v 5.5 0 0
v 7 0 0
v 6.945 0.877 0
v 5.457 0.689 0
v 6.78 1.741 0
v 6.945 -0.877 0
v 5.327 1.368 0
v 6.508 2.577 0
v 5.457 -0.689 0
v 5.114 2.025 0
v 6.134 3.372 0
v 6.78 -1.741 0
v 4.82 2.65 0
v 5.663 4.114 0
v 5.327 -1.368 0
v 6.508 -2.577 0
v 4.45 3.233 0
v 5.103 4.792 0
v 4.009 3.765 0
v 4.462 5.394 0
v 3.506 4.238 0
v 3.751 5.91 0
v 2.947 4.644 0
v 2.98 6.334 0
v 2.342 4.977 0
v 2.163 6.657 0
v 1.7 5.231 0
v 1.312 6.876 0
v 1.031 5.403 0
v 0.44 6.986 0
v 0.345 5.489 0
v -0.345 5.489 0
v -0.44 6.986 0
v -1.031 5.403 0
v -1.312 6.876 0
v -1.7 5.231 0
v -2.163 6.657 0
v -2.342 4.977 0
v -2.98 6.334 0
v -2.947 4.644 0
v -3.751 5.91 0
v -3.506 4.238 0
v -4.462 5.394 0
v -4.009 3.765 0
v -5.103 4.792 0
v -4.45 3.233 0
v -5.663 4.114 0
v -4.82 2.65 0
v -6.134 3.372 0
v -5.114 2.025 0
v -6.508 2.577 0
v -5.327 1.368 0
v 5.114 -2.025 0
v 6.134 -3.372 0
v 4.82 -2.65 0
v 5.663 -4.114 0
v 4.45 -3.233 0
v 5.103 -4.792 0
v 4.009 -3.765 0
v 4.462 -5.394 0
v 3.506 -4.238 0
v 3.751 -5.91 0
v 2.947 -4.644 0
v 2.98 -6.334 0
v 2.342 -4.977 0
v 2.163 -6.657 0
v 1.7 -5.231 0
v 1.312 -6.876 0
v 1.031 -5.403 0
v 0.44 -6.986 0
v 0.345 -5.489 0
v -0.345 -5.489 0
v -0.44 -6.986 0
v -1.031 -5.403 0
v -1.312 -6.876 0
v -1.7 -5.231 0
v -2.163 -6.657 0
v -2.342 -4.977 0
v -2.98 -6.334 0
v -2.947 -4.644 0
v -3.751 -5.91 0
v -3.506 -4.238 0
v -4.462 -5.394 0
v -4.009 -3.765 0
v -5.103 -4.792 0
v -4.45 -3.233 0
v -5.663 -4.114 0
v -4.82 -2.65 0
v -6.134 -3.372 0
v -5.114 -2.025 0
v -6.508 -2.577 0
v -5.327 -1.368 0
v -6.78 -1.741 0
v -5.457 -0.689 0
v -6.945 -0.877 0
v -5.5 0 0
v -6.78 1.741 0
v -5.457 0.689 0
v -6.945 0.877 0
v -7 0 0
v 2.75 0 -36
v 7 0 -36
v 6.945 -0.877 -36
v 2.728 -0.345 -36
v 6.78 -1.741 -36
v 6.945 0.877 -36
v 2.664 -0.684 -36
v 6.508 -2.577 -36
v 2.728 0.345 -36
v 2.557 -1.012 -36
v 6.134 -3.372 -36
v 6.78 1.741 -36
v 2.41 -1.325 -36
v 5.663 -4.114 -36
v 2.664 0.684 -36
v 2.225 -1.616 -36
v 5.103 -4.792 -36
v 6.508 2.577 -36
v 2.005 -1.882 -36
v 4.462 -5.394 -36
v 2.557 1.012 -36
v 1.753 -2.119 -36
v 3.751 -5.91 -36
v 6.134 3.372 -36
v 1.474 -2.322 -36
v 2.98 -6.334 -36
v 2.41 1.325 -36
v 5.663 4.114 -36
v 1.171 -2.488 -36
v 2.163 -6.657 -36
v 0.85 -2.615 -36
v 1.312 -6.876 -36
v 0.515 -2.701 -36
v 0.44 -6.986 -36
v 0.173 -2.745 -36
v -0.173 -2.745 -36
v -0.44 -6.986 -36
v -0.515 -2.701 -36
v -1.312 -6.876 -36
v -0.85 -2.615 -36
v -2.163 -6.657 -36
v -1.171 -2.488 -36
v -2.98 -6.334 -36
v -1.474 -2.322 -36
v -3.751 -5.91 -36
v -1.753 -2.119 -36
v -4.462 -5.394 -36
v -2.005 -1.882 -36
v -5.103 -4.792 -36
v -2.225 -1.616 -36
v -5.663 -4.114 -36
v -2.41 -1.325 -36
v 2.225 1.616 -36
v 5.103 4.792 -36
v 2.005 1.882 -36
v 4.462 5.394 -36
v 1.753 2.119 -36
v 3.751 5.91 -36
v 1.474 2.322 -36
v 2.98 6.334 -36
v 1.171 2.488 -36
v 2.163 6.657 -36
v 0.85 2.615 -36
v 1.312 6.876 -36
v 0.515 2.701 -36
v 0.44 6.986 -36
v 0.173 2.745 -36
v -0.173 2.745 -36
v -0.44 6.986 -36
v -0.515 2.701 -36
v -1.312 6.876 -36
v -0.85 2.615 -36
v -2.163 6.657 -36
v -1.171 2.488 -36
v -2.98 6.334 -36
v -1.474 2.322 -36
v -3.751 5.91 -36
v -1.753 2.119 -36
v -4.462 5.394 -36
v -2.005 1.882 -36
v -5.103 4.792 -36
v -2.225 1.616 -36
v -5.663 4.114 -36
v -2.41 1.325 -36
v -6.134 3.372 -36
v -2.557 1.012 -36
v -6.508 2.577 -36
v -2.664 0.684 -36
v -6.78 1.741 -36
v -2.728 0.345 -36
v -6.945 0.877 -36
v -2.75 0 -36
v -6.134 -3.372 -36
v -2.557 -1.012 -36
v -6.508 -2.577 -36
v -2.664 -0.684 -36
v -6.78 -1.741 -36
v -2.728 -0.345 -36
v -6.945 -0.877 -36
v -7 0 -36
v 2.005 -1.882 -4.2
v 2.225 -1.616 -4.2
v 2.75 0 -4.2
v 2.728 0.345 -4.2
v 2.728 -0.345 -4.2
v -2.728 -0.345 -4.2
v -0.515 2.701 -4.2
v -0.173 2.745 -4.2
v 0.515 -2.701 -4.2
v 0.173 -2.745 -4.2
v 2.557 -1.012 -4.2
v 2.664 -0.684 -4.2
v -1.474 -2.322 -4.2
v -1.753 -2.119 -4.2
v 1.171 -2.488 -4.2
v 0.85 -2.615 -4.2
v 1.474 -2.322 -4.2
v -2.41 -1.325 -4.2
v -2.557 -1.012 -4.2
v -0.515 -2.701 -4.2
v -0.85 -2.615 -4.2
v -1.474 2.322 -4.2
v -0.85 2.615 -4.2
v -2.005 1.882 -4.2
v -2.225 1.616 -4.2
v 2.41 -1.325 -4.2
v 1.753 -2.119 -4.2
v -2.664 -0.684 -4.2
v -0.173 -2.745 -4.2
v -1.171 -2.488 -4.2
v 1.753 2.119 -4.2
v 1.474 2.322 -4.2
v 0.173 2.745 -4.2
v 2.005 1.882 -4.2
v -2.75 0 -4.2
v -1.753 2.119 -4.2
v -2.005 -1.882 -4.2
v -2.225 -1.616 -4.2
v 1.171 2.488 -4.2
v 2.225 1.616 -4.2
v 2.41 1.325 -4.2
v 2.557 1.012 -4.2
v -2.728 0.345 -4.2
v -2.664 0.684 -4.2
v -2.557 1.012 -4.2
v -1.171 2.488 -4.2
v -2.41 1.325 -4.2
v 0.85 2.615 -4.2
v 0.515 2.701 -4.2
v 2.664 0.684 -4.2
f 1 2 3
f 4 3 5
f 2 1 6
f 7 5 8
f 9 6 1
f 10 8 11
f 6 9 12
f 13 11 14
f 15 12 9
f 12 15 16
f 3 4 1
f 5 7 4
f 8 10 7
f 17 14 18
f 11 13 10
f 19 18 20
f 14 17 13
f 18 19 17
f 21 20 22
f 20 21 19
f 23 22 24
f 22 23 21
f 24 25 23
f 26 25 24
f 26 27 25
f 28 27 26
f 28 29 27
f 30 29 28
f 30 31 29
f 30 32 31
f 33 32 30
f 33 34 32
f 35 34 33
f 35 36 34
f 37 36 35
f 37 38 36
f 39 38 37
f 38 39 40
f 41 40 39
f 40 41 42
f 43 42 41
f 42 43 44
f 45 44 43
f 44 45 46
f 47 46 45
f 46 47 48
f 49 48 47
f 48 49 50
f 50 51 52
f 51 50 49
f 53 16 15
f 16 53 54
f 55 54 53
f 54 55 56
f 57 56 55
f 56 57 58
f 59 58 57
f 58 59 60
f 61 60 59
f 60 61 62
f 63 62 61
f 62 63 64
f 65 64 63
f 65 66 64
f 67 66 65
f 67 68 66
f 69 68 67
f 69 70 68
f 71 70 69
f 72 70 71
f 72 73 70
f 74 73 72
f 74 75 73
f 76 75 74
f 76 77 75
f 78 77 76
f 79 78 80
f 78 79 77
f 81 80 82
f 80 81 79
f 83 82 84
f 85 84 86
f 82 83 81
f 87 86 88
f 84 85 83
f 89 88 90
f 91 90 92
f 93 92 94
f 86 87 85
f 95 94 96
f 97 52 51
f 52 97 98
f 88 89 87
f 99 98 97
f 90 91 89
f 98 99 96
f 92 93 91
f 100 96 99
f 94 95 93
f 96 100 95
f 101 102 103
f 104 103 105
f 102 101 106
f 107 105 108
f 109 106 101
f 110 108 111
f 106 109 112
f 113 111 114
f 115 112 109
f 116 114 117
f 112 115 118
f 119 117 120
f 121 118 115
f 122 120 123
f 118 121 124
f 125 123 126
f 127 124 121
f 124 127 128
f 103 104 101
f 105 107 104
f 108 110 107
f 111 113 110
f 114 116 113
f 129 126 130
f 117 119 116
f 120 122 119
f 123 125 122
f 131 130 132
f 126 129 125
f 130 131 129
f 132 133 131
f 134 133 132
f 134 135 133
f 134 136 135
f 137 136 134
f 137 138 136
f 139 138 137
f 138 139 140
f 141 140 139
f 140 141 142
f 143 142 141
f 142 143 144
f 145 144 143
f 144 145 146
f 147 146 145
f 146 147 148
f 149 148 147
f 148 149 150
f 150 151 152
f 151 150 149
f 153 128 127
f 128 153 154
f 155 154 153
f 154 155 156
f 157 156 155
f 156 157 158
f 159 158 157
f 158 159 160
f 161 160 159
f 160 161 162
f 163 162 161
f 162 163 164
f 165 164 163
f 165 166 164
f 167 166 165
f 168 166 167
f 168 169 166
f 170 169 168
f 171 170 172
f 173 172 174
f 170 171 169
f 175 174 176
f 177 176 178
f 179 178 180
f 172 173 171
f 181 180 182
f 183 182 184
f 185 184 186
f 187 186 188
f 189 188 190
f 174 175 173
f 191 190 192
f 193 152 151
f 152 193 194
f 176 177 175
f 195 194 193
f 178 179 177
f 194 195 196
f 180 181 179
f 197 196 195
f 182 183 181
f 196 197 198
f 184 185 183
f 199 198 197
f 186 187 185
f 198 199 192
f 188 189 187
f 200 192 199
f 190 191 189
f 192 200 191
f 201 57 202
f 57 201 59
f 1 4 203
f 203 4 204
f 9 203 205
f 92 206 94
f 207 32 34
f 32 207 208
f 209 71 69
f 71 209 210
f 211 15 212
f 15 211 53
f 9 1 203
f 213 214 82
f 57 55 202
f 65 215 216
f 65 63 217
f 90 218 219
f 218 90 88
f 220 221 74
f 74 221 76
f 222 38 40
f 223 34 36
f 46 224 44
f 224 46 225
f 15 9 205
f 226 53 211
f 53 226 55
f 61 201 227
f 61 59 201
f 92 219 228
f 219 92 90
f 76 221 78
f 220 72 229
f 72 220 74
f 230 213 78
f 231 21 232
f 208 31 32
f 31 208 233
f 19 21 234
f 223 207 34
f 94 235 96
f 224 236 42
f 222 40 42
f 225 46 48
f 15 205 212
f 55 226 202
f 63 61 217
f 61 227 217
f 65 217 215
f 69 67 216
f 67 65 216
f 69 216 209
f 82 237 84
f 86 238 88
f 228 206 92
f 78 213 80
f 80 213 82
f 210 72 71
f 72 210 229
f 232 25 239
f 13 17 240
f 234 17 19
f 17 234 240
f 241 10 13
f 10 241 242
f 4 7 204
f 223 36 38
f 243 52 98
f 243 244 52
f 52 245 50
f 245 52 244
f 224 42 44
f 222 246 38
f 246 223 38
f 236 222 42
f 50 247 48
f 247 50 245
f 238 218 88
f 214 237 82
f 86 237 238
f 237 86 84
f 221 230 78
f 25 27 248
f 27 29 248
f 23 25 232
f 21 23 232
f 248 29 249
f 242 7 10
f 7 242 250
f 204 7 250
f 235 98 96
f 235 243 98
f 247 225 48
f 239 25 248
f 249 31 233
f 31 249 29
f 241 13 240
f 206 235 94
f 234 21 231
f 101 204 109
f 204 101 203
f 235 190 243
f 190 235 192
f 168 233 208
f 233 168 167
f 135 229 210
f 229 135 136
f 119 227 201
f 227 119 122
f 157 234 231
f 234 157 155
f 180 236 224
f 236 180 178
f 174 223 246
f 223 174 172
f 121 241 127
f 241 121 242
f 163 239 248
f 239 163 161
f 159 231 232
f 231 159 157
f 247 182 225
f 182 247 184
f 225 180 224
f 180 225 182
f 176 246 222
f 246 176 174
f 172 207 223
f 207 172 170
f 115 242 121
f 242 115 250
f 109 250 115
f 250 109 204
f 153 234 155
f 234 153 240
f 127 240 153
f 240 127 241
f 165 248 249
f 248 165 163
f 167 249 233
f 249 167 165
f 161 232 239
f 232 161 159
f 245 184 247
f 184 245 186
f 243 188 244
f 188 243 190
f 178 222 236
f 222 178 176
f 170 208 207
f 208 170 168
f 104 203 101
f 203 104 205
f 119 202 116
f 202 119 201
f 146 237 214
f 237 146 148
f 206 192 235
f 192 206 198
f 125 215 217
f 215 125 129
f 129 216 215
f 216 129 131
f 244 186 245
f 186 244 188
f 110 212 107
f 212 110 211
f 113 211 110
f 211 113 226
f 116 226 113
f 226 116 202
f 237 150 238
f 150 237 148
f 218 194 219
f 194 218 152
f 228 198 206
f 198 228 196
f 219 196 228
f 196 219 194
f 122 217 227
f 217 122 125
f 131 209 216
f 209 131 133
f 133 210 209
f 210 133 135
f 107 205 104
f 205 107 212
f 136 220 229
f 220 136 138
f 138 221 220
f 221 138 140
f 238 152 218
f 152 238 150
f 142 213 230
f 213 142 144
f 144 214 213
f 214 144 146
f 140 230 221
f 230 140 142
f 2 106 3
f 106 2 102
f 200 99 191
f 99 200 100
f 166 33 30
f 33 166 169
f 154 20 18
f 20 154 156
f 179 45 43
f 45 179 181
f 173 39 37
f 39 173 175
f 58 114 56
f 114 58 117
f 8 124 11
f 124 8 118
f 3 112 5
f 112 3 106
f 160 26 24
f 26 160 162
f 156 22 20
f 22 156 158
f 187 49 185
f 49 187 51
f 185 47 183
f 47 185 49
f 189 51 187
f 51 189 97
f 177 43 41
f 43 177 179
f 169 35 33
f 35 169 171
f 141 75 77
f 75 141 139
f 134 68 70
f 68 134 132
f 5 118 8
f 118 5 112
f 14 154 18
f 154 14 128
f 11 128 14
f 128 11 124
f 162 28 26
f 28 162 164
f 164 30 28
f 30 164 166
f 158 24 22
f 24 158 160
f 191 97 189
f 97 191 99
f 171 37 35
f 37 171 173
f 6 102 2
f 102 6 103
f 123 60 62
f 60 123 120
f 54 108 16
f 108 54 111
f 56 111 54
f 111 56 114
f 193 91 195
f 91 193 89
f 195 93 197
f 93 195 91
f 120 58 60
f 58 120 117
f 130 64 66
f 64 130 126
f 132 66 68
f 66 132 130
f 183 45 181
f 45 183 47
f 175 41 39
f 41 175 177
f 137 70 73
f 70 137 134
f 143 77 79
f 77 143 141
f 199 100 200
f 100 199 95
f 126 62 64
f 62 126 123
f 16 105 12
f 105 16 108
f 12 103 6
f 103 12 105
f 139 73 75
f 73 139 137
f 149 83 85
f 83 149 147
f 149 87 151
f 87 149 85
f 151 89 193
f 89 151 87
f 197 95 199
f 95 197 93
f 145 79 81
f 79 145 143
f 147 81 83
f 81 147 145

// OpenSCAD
$fn = 50;


difference() {
	union() {
		translate(v = [0, 0, -36.0000000000]) {
			cylinder(h = 36, r = 7.0000000000);
		}
		cylinder(h = 0, r = 16.0000000000);
	}
	union() {
		translate(v = [0, 0, 0]) {
			rotate(a = [0, 0, 0]) {
				difference() {
					union() {
						#translate(v = [0, 0, -36.0000000000]) {
							cylinder(h = 36, r = 2.2500000000);
						}
						#translate(v = [0, 0, -4.2000000000]) {
							cylinder(h = 4.2000000000, r = 7.0000000000, r1 = 2.7500000000, r2 = 5.5000000000);
						}
						#translate(v = [0, 0, -36.0000000000]) {
							cylinder(h = 36, r = 2.7500000000);
						}
						#translate(v = [0, 0, -36.0000000000]) {
							cylinder(h = 36, r = 2.2500000000);
						}
					}
					union();
				}
			}
		}
	}
}
